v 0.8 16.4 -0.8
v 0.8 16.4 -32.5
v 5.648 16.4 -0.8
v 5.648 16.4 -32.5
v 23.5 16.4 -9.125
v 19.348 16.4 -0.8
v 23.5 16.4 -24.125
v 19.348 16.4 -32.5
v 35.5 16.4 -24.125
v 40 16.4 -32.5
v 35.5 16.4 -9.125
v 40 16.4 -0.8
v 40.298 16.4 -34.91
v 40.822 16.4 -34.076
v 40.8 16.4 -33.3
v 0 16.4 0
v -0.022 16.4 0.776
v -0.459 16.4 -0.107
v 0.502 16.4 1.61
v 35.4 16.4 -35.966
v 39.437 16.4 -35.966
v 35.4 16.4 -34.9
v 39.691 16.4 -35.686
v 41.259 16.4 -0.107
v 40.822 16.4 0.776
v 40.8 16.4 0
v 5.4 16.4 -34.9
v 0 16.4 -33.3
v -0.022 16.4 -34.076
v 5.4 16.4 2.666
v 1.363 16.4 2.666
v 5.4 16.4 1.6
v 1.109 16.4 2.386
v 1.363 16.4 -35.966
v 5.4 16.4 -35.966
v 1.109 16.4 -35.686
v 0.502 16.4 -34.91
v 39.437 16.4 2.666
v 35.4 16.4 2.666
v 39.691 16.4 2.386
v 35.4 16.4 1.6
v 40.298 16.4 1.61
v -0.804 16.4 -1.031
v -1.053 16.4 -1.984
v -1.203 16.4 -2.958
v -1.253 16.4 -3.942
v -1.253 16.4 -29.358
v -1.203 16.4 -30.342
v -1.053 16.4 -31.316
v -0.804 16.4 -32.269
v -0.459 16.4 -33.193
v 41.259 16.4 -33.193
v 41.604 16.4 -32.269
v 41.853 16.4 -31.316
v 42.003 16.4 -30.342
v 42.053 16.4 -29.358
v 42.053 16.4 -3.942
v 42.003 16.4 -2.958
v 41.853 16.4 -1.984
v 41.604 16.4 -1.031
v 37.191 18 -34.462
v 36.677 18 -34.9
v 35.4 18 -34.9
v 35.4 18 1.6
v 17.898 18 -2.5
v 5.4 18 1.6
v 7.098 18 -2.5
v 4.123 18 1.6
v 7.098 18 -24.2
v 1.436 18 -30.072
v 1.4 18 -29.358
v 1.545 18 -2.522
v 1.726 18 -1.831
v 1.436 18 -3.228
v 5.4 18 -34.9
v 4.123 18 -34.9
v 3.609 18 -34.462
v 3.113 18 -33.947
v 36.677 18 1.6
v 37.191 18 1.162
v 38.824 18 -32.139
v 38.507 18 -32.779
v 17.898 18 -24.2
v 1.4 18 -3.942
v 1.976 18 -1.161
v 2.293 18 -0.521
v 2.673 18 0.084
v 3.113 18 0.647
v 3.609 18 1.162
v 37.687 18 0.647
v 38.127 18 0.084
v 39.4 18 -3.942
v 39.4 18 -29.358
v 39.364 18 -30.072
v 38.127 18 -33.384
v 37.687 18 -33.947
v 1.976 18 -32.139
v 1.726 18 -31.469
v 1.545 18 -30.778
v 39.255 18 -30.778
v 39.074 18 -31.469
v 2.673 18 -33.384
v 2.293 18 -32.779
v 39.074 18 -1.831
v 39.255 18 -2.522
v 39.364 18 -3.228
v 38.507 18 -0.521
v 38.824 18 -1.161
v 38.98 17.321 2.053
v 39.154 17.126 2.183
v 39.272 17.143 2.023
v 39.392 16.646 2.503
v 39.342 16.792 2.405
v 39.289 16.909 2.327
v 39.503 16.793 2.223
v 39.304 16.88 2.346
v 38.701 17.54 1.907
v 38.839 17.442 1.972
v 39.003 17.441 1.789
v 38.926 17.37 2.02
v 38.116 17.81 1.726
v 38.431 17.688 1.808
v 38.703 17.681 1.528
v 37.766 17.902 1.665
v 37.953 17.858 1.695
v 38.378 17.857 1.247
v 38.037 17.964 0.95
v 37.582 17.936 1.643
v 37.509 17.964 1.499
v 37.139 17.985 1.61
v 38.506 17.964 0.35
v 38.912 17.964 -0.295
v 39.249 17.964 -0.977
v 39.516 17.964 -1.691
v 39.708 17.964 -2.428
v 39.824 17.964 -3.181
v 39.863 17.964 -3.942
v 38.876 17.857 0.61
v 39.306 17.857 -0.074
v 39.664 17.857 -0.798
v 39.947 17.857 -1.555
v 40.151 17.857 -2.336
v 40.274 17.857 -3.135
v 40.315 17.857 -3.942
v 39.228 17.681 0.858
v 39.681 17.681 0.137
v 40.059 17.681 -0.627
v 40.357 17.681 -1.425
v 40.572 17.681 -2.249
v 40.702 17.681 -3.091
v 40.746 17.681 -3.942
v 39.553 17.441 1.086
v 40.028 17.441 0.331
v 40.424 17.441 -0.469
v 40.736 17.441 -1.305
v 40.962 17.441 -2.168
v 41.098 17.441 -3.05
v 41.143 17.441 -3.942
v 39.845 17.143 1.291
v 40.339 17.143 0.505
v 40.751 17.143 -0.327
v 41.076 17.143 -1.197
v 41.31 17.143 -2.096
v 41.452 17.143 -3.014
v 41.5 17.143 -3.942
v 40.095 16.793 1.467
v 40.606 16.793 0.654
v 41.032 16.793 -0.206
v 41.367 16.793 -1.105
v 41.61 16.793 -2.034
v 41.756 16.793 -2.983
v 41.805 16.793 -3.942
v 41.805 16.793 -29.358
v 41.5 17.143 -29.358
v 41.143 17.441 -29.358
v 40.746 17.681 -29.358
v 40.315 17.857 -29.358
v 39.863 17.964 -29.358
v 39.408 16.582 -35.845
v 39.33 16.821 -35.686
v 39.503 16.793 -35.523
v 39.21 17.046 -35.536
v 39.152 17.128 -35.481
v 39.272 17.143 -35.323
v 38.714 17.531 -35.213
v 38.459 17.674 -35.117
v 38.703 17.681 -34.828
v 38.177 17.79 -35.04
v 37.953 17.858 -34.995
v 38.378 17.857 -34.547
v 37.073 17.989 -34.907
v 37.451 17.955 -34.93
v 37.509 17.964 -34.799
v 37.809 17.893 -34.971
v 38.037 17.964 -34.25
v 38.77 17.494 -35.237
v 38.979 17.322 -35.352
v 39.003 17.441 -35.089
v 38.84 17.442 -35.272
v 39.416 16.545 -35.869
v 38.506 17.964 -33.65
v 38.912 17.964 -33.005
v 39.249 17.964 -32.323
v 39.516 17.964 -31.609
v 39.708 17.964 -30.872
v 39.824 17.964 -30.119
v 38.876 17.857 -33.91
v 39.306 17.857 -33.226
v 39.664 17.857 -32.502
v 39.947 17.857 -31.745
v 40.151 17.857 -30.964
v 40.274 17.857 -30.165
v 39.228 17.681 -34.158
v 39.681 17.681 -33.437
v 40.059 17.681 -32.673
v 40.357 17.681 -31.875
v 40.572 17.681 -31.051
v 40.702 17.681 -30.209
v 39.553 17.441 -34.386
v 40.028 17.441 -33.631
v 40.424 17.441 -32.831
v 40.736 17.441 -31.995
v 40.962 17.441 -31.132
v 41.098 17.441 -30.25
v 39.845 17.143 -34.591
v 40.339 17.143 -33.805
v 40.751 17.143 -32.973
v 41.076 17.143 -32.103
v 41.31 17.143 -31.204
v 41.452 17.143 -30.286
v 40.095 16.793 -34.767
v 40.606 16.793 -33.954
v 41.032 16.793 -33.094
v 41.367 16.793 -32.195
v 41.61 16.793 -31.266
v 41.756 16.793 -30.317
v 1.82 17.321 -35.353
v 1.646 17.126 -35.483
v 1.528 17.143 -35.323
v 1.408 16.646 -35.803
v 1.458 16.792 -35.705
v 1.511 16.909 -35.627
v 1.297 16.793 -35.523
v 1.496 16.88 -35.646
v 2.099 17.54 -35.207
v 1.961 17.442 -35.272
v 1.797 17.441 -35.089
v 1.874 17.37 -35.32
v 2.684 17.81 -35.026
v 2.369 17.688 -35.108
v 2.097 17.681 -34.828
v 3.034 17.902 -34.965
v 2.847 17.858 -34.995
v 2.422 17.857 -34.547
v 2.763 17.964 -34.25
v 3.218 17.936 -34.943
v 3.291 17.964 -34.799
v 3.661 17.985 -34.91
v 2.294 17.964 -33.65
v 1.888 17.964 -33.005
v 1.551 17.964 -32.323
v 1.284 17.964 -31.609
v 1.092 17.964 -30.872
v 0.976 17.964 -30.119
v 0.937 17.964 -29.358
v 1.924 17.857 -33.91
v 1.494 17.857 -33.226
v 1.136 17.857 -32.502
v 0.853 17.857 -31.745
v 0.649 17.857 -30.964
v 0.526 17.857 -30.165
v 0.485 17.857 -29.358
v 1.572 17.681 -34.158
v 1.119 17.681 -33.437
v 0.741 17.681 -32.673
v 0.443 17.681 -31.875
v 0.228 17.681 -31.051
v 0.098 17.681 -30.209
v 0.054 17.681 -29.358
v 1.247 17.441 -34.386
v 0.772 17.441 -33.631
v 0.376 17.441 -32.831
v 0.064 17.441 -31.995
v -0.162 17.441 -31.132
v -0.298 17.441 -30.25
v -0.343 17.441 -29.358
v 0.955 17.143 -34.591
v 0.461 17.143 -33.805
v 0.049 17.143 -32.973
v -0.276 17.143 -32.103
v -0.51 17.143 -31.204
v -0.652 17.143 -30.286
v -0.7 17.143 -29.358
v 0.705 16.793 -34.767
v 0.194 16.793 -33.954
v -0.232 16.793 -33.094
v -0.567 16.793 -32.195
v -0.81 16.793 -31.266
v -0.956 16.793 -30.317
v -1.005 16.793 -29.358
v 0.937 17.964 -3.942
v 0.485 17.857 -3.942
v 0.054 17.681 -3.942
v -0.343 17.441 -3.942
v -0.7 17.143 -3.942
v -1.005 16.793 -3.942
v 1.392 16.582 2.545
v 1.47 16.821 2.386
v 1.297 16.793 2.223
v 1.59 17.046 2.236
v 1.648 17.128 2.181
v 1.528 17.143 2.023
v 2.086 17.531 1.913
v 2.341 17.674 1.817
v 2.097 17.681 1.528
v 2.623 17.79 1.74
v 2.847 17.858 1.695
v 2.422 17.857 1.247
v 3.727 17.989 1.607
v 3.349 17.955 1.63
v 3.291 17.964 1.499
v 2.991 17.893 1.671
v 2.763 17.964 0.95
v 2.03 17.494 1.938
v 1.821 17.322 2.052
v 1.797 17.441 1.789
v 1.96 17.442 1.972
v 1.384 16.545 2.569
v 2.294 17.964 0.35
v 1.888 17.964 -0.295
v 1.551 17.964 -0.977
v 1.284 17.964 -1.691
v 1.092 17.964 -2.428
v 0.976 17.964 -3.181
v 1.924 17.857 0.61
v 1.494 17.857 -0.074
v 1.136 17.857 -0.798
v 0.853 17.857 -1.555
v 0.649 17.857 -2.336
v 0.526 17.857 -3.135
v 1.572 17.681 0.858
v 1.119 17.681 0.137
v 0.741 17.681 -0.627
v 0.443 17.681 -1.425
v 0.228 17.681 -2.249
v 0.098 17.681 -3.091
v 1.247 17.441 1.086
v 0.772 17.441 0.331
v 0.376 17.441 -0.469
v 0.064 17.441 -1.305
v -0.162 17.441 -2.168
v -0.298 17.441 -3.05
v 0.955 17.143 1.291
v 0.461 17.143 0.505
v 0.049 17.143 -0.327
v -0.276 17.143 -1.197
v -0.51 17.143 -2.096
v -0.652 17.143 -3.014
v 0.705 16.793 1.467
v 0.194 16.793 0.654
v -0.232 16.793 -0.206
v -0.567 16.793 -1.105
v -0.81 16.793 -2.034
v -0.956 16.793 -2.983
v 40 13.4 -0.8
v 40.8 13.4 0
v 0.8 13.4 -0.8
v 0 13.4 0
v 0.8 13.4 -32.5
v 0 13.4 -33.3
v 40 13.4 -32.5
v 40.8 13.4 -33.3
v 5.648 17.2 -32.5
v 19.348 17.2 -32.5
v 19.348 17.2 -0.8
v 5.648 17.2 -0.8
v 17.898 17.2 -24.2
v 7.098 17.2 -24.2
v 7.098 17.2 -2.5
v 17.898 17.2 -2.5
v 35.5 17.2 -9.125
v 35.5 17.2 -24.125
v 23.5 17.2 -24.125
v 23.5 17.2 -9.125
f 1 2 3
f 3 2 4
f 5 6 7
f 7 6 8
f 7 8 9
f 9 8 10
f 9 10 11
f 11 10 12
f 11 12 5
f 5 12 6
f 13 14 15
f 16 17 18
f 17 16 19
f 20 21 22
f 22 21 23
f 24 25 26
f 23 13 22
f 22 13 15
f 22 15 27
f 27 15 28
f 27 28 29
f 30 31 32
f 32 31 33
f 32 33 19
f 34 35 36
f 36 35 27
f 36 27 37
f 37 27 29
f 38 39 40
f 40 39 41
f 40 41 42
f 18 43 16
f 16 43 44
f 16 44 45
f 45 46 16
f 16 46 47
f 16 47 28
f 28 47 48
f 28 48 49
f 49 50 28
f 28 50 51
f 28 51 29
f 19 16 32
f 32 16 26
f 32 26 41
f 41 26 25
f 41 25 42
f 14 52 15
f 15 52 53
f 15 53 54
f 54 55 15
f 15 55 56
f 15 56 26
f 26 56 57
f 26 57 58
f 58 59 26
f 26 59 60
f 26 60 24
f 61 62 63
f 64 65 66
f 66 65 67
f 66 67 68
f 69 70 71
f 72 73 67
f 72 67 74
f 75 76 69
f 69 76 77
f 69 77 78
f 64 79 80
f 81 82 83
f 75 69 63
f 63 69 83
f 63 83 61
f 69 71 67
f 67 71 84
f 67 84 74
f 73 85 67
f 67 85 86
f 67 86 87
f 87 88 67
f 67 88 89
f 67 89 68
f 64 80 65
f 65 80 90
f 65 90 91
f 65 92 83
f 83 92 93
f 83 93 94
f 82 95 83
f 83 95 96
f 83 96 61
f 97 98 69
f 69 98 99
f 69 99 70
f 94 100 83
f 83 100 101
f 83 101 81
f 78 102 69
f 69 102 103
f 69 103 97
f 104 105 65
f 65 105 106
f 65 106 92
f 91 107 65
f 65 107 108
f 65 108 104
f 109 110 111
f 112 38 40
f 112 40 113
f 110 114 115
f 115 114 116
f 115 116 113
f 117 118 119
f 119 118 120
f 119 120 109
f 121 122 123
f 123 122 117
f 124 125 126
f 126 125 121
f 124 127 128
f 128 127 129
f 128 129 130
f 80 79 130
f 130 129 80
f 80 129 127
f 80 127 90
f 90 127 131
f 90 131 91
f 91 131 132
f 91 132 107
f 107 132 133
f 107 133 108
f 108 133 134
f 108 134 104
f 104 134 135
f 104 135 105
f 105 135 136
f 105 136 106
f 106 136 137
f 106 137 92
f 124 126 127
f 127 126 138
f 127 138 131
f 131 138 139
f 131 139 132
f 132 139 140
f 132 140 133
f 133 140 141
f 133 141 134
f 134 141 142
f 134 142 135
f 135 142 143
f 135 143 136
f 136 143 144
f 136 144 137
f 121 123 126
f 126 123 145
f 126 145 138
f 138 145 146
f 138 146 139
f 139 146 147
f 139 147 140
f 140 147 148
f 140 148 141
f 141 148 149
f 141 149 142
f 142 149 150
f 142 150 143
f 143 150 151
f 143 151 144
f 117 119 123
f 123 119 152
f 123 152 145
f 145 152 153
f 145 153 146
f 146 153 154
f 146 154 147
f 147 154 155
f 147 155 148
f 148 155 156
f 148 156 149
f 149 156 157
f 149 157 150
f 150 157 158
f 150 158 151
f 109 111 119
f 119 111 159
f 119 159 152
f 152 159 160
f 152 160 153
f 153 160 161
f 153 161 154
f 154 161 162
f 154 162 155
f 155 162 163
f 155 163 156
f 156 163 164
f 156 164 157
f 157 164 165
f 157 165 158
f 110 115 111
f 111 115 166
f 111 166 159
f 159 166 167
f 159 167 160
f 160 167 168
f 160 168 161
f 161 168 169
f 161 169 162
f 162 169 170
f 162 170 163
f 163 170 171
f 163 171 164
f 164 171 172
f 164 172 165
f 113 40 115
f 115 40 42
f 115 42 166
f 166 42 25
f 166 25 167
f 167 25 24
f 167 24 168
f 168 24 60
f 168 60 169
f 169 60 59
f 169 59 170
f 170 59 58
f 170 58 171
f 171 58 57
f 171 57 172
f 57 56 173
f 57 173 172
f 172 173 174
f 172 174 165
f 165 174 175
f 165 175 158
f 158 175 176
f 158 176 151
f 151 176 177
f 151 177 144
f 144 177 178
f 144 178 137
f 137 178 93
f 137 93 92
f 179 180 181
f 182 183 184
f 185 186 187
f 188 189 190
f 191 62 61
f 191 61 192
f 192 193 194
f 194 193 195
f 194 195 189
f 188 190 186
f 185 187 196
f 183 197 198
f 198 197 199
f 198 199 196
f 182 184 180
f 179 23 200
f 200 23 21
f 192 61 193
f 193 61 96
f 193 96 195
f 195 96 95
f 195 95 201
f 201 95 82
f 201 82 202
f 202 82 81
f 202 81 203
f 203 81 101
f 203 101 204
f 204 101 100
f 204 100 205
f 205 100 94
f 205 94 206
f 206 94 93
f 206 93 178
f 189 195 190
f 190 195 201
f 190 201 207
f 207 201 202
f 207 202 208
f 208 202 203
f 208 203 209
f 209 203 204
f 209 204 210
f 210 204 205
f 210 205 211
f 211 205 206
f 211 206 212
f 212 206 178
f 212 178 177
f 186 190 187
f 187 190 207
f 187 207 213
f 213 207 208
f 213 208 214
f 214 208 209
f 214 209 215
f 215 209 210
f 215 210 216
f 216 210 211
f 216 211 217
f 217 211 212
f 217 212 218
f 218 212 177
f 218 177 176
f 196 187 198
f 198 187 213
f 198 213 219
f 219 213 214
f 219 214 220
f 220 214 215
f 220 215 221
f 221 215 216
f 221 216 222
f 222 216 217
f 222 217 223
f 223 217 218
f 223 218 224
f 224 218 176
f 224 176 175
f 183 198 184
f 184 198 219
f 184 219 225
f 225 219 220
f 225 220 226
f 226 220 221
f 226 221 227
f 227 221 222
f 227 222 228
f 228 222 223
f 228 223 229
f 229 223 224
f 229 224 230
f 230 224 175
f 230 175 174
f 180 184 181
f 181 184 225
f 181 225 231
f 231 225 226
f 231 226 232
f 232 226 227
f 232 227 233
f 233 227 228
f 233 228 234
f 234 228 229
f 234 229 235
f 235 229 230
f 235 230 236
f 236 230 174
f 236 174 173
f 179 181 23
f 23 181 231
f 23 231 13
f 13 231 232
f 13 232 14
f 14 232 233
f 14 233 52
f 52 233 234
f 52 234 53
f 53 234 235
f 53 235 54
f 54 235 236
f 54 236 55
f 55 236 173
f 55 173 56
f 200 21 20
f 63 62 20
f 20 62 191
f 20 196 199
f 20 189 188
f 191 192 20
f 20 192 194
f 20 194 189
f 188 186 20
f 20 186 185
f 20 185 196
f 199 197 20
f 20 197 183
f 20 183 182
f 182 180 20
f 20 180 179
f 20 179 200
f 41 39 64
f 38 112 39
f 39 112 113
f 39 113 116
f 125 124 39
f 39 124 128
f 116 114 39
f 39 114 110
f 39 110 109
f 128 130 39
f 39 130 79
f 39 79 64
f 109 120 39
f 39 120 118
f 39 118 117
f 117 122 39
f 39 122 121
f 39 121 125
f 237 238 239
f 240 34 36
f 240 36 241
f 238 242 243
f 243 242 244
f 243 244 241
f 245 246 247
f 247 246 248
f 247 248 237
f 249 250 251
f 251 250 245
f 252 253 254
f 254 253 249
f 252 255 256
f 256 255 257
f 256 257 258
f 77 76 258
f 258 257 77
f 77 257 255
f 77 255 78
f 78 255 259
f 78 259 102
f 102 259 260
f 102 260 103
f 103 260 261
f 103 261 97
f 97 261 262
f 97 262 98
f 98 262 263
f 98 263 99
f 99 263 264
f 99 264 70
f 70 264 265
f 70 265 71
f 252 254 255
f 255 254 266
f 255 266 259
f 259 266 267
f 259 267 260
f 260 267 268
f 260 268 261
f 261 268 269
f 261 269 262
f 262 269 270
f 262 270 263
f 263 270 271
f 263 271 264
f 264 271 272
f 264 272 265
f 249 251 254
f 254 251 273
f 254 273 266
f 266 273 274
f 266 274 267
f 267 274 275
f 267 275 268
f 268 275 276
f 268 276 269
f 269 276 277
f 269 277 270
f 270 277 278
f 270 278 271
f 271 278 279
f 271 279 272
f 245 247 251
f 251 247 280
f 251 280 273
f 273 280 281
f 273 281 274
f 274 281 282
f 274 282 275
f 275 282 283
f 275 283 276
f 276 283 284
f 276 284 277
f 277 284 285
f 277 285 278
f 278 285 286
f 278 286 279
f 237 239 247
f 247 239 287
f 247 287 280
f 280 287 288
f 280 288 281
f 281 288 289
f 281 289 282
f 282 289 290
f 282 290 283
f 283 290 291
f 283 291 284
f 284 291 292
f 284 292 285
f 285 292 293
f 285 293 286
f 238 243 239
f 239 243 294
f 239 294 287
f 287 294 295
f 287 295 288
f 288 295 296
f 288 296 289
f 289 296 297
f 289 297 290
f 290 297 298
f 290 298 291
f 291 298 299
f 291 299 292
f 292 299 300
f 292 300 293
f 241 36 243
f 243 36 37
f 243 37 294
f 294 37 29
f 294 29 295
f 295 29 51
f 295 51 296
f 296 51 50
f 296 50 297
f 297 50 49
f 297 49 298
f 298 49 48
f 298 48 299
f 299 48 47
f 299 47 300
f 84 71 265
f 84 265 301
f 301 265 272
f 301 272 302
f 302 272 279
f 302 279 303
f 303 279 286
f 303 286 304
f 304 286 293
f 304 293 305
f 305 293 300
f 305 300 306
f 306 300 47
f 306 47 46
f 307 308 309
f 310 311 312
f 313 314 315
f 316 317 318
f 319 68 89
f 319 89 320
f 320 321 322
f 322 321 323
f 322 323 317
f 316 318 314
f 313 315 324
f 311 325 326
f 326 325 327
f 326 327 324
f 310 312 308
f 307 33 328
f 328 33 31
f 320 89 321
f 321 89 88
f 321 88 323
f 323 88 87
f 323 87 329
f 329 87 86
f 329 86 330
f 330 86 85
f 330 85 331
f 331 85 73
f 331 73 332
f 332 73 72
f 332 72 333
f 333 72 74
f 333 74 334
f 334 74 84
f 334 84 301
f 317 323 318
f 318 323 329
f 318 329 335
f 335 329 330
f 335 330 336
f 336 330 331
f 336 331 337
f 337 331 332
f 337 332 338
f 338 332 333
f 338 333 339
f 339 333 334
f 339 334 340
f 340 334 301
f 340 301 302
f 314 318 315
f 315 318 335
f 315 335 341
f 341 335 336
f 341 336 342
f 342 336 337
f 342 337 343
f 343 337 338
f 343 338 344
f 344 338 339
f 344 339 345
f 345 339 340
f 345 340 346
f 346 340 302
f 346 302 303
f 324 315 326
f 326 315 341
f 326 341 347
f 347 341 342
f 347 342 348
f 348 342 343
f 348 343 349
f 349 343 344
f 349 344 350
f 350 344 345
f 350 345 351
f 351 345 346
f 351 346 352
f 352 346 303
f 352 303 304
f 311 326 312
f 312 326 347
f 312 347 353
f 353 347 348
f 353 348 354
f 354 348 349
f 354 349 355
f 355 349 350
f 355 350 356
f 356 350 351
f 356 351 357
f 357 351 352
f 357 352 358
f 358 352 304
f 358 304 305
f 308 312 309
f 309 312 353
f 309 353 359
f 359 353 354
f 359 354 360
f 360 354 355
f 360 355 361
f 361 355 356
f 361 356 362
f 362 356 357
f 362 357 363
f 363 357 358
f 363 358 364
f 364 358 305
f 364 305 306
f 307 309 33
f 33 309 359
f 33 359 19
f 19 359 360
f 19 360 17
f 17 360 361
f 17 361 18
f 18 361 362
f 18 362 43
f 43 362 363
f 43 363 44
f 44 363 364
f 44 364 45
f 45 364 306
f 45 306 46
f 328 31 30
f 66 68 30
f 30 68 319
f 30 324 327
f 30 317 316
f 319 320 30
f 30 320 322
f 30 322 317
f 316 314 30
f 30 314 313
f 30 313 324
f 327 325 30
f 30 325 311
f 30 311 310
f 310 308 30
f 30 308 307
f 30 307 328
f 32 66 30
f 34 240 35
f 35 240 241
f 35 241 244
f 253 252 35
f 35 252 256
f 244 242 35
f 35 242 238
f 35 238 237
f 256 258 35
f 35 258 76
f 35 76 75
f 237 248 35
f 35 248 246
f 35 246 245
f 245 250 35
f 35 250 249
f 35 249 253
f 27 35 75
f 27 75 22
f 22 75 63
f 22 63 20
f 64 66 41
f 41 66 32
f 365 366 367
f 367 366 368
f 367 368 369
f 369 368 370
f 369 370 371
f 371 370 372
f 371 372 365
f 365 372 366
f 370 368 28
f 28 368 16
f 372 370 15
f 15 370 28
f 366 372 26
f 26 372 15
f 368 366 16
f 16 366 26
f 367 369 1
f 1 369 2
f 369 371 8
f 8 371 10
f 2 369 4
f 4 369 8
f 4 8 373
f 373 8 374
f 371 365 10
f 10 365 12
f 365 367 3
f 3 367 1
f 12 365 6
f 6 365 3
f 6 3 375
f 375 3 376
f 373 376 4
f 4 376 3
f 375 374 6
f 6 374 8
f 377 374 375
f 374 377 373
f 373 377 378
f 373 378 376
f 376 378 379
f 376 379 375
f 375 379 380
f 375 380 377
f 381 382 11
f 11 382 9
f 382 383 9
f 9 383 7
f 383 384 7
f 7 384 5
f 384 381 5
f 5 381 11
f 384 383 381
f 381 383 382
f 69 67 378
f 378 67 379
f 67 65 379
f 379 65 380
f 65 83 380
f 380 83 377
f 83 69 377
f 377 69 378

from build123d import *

# Parameters (mm, degrees)
SKETCH_1_W          = 40.8
SKETCH_1_H          = 33.3
EXTRUDE_3_DEPTH     = 16.4
SKETCH_2_W          = 40.8
SKETCH_2_H          = 33.3
EXTRUDE_4_DEPTH     = 1.6
SKETCH_4_W          = 17.099999999999994
SKETCH_4_H          = 13.8
CUT_EXTRUDE_1_DEPTH = 0.8
SKETCH_5_W          = 4.100000000000001
SKETCH_5_H          = 6.399999999999999
CUT_EXTRUDE_2_DEPTH = 0.8
EXTRUDE_5_DEPTH     = 3.5
EXTRUDE_5_2_DEPTH   = 3.5
EXTRUDE_5_3_DEPTH   = 3.5
SKETCH_6_W          = 3.000000000000007
SKETCH_6_H          = 3.0000000000000036
EXTRUDE_5_4_DEPTH   = 3.5
SKETCH_7_W          = 3.000000000000007
SKETCH_7_H          = 33.3
EXTRUDE_7_DEPTH     = 1.6
SKETCH_8_R          = 2.4500000000000015
SKETCH_8_W          = 10.999999999999998
SKETCH_8_H          = 4.8999999999999995
CUT_EXTRUDE_3_DEPTH = 1.6
SKETCH_10_W         = 44
SKETCH_10_H         = 36.49999999999999
EXTRUDE_8_DEPTH     = 1.6
SKETCH_11_W         = 2.0999999999999996
SKETCH_11_H         = 6.020000000000001
EXTRUDE_9_DEPTH     = 44
EXTRUDE_12_DEPTH    = 7
SKETCH_15_W         = 2.1000000000000085
SKETCH_15_H         = 6.019999999999997
EXTRUDE_13_DEPTH    = 37
EXTRUDE_14_DEPTH    = 7
EXTRUDE_15_DEPTH    = 7
FILLET_1_R          = 10
FILLET_2_R          = 3.2
FILLET_3_R          = 3
SKETCH_17_W         = 56.29646115275759
SKETCH_17_H         = 50.293284015615065
CUT_EXTRUDE_4_DEPTH = 16.4
EXTRUDE_16_DEPTH    = 3
CUT_EXTRUDE_6_DEPTH = 0.8
CUT_EXTRUDE_7_DEPTH = 0.8
CUT_EXTRUDE_8_DEPTH = 0.8


with BuildPart() as part:
    # Эскиз1 → Бобышка-Вытянуть3 (new body)
    with BuildSketch(Plane(origin=(0, 0, 0), x_dir=(1, 0, 0), z_dir=(0, 1, 0))):
        Polygon((42.399999999999984, 34.89999999999999), (42.39999999999999, -1.600000000000004), (-1.6000000000000032, -1.600000000000004), (-1.6000000000000076, 34.89999999999999), align=None)
        with Locations((20.4, 16.65)):
            Rectangle(SKETCH_1_W, SKETCH_1_H, mode=Mode.SUBTRACT)
    extrude(amount=EXTRUDE_3_DEPTH)

    # Эскиз2 → Бобышка-Вытянуть4 (add)
    with BuildSketch(Plane(origin=(0, 0, 0), x_dir=(-1, 0, 0), z_dir=(0, -1, 0))):
        with Locations((-20.4, 16.65)):
            Rectangle(SKETCH_2_W, SKETCH_2_H)
    extrude(amount=-EXTRUDE_4_DEPTH)

    # Эскиз4 → Вырез-Вытянуть1 (cut)
    with BuildSketch(Plane(origin=(0, 1.6, 0), x_dir=(1, 0, 0), z_dir=(0, 1, 0))):
        with Locations((20.4, 16.65)):
            Rectangle(SKETCH_4_W, SKETCH_4_H)
    extrude(amount=-CUT_EXTRUDE_1_DEPTH, mode=Mode.SUBTRACT)

    # Эскиз5 → Вырез-Вытянуть2 (cut)
    with BuildSketch(Plane(origin=(0, 0.8, 0), x_dir=(1, 0, 0), z_dir=(0, 1, 0))):
        with Locations((20.4, 16.65)):
            Rectangle(SKETCH_5_W, SKETCH_5_H)
    extrude(amount=-CUT_EXTRUDE_2_DEPTH, mode=Mode.SUBTRACT)

    # Эскиз8 → Вырез-Вытянуть3 (cut)
    with BuildSketch(Plane.ZY.offset(1.6000000000000034)):
        with Locations((-22.149999999999995, 8.95)):
            Circle(SKETCH_8_R)
        with Locations((-11.149999999999993, 8.95)):
            Circle(SKETCH_8_R)
        with Locations((-16.64999999999999, 8.950000000000001)):
            Rectangle(SKETCH_8_W, SKETCH_8_H)
    extrude(amount=-CUT_EXTRUDE_3_DEPTH, mode=Mode.SUBTRACT)

    # Эскиз10 → Бобышка-Вытянуть8 (add)
    with BuildSketch(Plane(origin=(0, 16.4, 0), x_dir=(1, 0, 0), z_dir=(0, 1, 0))):
        with Locations((20.39999999999999, 16.649999999999995)):
            Rectangle(SKETCH_10_W, SKETCH_10_H)
    extrude(amount=EXTRUDE_8_DEPTH)



with BuildPart() as body_2:
    # Эскиз6 → Бобышка-Вытянуть5 (new body)
    with BuildSketch(Plane(origin=(0, 1.6, 0), x_dir=(1, 0, 0), z_dir=(0, 1, 0))):
        Polygon((0, 33.3), (3, 33.3), (3.0000000000000004, 30.299999999999997), (3.7e-16, 30.299999999999997), align=None)
    extrude(amount=EXTRUDE_5_DEPTH)


with BuildPart() as body_3:
    # Эскиз6 → Extrude 5 2 (new body)
    with BuildSketch(Plane(origin=(0, 1.6, 0), x_dir=(1, 0, 0), z_dir=(0, 1, 0))):
        Polygon((0, 0), (3, 0), (2.9999999999999996, 3), (-8.7e-16, 3), align=None)
    extrude(amount=EXTRUDE_5_2_DEPTH)


with BuildPart() as body_4:
    # Эскиз6 → Extrude 5 3 (new body)
    with BuildSketch(Plane(origin=(0, 1.6, 0), x_dir=(1, 0, 0), z_dir=(0, 1, 0))):
        Polygon((40.8, 0), (37.79999999999999, -3.7e-16), (37.79999999999999, 2.9999999999999996), (40.8, 3), align=None)
    extrude(amount=EXTRUDE_5_3_DEPTH)


with BuildPart() as body_5:
    # Эскиз6 → Extrude 5 4 (new body)
    with BuildSketch(Plane(origin=(0, 1.6, 0), x_dir=(1, 0, 0), z_dir=(0, 1, 0))):
        with Locations((39.3, 31.799999999999997)):
            Rectangle(SKETCH_6_W, SKETCH_6_H)
    extrude(amount=EXTRUDE_5_4_DEPTH)


with BuildPart() as body_6:
    # Эскиз7 → Бобышка-Вытянуть7 (new body)
    with BuildSketch(Plane(origin=(0, 5.1000000000000005, 0), x_dir=(1, 0, 0), z_dir=(0, 1, 0))):
        with Locations((39.3, 16.65)):
            Rectangle(SKETCH_7_W, SKETCH_7_H)
    extrude(amount=EXTRUDE_7_DEPTH)


with BuildPart() as body_6_1:
    # Move Body 1: read off the stored shape, not the designer's step
    # Move Body 1: moved
    add(body_6.part.moved(Location((0, 5.27, 0))))


with BuildPart() as body_7:
    # Эскиз11 → Бобышка-Вытянуть9 (new body)
    with BuildSketch(Plane(origin=(42.39999999999999, 0, -8.06e-15), x_dir=(-1.9e-16, 0, -1), z_dir=(1, 0, -1.9e-16))):
        with Locations((-5.008433364905541, 9)):
            Rectangle(SKETCH_11_W, SKETCH_11_H)
    extrude(amount=-EXTRUDE_9_DEPTH)


with BuildPart() as part_1:
    add(part.part)

    add(body_7.part)  # Бобышка-Вытянуть12 merges body 7
    # Эскиз12 → Бобышка-Вытянуть12 (add)
    with BuildSketch(Plane(origin=(42.39999999999999, 0, -8.06e-15), x_dir=(-1.9e-16, 0, -1), z_dir=(1, 0, -1.9e-16))):
        Polygon((-1.6000000000000123, 0), (-6.0584333649055395, 6.675491735766058), (-6.05843336490554, 11.309768082903124), (-1.6000000000000123, 18), align=None)
        Polygon((34.899999999999984, 18.00000000000004), (34.899999999999984, 3.25e-15), (39.35843336490551, 6.675491735766043), (39.35843336490551, 11.309768082903172), align=None)
    extrude(amount=-EXTRUDE_12_DEPTH)

    # Эскиз15 → Бобышка-Вытянуть13 (add)
    with BuildSketch(Plane.ZY.offset(-35.39999999999997)):
        with Locations((-38.30843336490551, 8.994768082903173)):
            Rectangle(SKETCH_15_W, SKETCH_15_H)
    extrude(amount=EXTRUDE_13_DEPTH)

    # Эскиз16 → Бобышка-Вытянуть14 (add)
    with BuildSketch(Plane.ZY.offset(1.6000000000000034)):
        Polygon((-34.89999999999999, 18), (-39.358433364905515, 11.309768082903172), (-39.358433364905515, 6.6797680829031725), (-34.89999999999999, 0), align=None)
    extrude(amount=-EXTRUDE_14_DEPTH)

    # Эскиз14 → Бобышка-Вытянуть15 (add)
    with BuildSketch(Plane.ZY.offset(1.6000000000000034)):
        Polygon((1.600000000000004, 18), (6.058433364905541, 11.309768082903124), (6.05843336490554, 6.675491735766058), (1.600000000000004, 0), align=None)
    extrude(amount=-EXTRUDE_15_DEPTH)

    # Скругление1
    # the kernel refuses this fillet: 10 mm, written as the material it takes off along each edge
    with BuildSketch(Plane(origin=(-1.6000000000000074, 37.010000000000005, 6.05843336490554), x_dir=(4.2e-16, 0, -1), z_dir=(0, -1, 0))) as fillet_1_piece_1:
        with BuildLine():
            CenterArc((FILLET_1_R, FILLET_1_R), FILLET_1_R, 180, 89.99999999999994)
            Line((6.88e-15, FILLET_1_R), (0, 0))
            Line((0, 0), (FILLET_1_R, 0))
        make_face()
    extrude(amount=56.02000000000001, mode=Mode.SUBTRACT)
    with BuildSketch(Plane(origin=(42.39999999999999, 37.01, 6.058433364905532), x_dir=(0, 0, -1), z_dir=(0, -1, 0))) as fillet_1_piece_2:
        with BuildLine():
            CenterArc((FILLET_1_R, -FILLET_1_R), FILLET_1_R, 89.99999999999999, 90.00000000000001)
            Line((-5.33e-15, -FILLET_1_R), (0, 0))
            Line((0, 0), (FILLET_1_R, 0))
        make_face()
    extrude(amount=56.019999999999996, mode=Mode.SUBTRACT)
    with BuildSketch(Plane(origin=(42.399999999999984, -18.324508264233955, -39.358433364905515), x_dir=(0, 0, 1), z_dir=(0, 1, 0))) as fillet_1_piece_3:
        with BuildLine():
            CenterArc((FILLET_1_R, -FILLET_1_R), FILLET_1_R, 90.00000000000003, 89.99999999999997)
            Line((7.11e-15, -FILLET_1_R), (0, 0))
            Line((0, 0), (FILLET_1_R, 0))
        make_face()
    extrude(amount=54.634276347137124, mode=Mode.SUBTRACT)
    with BuildSketch(Plane(origin=(-1.6000000000000298, -19.015231917096827, -39.358433364905515), x_dir=(1, 0, 7.1e-16), z_dir=(0, 1, 0))) as fillet_1_piece_4:
        with BuildLine():
            CenterArc((FILLET_1_R, -FILLET_1_R), FILLET_1_R, 90.00000000000006, 89.99999999999994)
            Line((8.88e-15, -FILLET_1_R), (0, 0))
            Line((0, 0), (FILLET_1_R, 0))
        make_face()
    extrude(amount=56.02, mode=Mode.SUBTRACT)

    # Скругление2
    # the kernel refuses this fillet: 3.2 mm, written as the material it takes off along each edge
    with BuildSketch(Plane(origin=(35.39999999999997, 5.984768082903174, -37.25843336490551), x_dir=(0, 4.2e-16, -1), z_dir=(-1, 0, 0))) as fillet_2_piece_1:
        with BuildLine():
            CenterArc((3.200000000000004, -3.0049958402633457), FILLET_2_R, 110.10550978791592, 69.89449021208412)
            Line((1.27e-15, -3.004995840263347), (0, 0))
            Line((0, 0), (2.1000000000000085, 0))
        make_face()
    extrude(amount=29.99999999999998, mode=Mode.SUBTRACT)
    with BuildSketch(Plane(origin=(35.39999999999997, 5.984768082903174, -37.25843336490551), x_dir=(0, 4.2e-16, -1), z_dir=(-1, 0, 0))) as fillet_2_piece_2_section:
        with BuildLine():
            CenterArc((3.200000000000004, -3.0049958402633457), FILLET_2_R, 110.10550978791592, 69.89449021208412)
            Line((1.27e-15, -3.004995840263347), (0, 0))
            Line((0, 0), (2.1000000000000085, 0))
        make_face()
    fillet_2_piece_2 = extrude(amount=37.51248960065835, mode=Mode.PRIVATE)
    fillet_2_piece_2 = split(fillet_2_piece_2, bisect_by=Plane(origin=(35.39999999999997, 5.229293666046891, -38.39030940389469), z_dir=(0, -0.5551530875809806, -0.8317481886660796)), keep=Keep.TOP, mode=Mode.PRIVATE)
    add(fillet_2_piece_2, mode=Mode.SUBTRACT)
    with BuildSketch(Plane(origin=(35.39999999999997, 12.004768082903173, -37.25843336490551), x_dir=(0, -8.5e-16, -1), z_dir=(-1, 0, 0))) as fillet_2_piece_3:
        with BuildLine():
            CenterArc((3.2000000000000055, 3.004995840263345), FILLET_2_R, 179.99999999999994, 69.89449021208412)
            Line((2.54e-15, 3.004995840263348), (0, 0))
            Line((0, 0), (2.1000000000000085, 0))
        make_face()
    extrude(amount=29.99999999999998, mode=Mode.SUBTRACT)
    with BuildSketch(Plane(origin=(42.91248960065834, 12.004768082903173, -37.25843336490551), x_dir=(0, -8.5e-16, -1), z_dir=(-1, 0, 0))) as fillet_2_piece_4_section:
        with BuildLine():
            CenterArc((3.2000000000000055, 3.004995840263345), FILLET_2_R, 179.99999999999994, 69.89449021208412)
            Line((2.54e-15, 3.004995840263348), (0, 0))
            Line((0, 0), (2.1000000000000085, 0))
        make_face()
    fillet_2_piece_4 = extrude(amount=45.02497920131672, mode=Mode.PRIVATE)
    fillet_2_piece_4 = split(fillet_2_piece_4, bisect_by=Plane(origin=(42.91248960065834, 12.760123030249147, -38.39190321044578), z_dir=(0, 0.5545519689982268, -0.8321490934202775)), keep=Keep.TOP, mode=Mode.PRIVATE)
    add(fillet_2_piece_4, mode=Mode.SUBTRACT)
    with BuildSketch(Plane(origin=(35.39999999999999, 5.99, 3.958433364905534), x_dir=(1.9e-16, 0, 1), z_dir=(-1, 0, 1.9e-16))) as fillet_2_piece_5:
        with BuildLine():
            CenterArc((3.2000000000000006, 3.0049958402633443), FILLET_2_R, 180, 69.89449021208401)
            Line((4.4e-16, 3.0049958402633443), (0, 0))
            Line((0, 0), (2.1, 0))
        make_face()
    extrude(amount=29.999999999999993, mode=Mode.SUBTRACT)
    with BuildSketch(Plane(origin=(42.91248960065835, 12.01, 3.9584333649055328), x_dir=(1.9e-16, 8.5e-16, 1), z_dir=(-1, 0, 1.9e-16))) as fillet_2_piece_6_section:
        with BuildLine():
            CenterArc((3.1999999999999984, -3.004995840263345), FILLET_2_R, 110.10550978791599, 69.89449021208395)
            Line((-2.1e-15, -3.0049958402633425), (0, 0))
            Line((0, 0), (2.0999999999999996, 0))
        make_face()
    fillet_2_piece_6 = extrude(amount=45.024979201316704, mode=Mode.PRIVATE)
    fillet_2_piece_6 = split(fillet_2_piece_6, bisect_by=Plane(origin=(42.91248960065835, 12.763745986939767, 5.089488838090781), z_dir=(0, 0.5545519689982267, 0.8321490934202775)), keep=Keep.TOP, mode=Mode.PRIVATE)
    add(fillet_2_piece_6, mode=Mode.SUBTRACT)
    with BuildSketch(Plane(origin=(35.39999999999999, 12.01, 3.958433364905534), x_dir=(1.9e-16, 8.5e-16, 1), z_dir=(-1, 0, 1.9e-16))) as fillet_2_piece_7:
        with BuildLine():
            CenterArc((3.199999999999998, -3.004995840263345), FILLET_2_R, 110.10550978791599, 69.89449021208395)
            Line((-2.1e-15, -3.0049958402633425), (0, 0))
            Line((0, 0), (2.099999999999999, 0))
        make_face()
    extrude(amount=29.999999999999993, mode=Mode.SUBTRACT)

    # Скругление3
    fillet_3_edges = [part_1.edges().sort_by_distance(p)[0] for p in [
        (41.97186604889837, 17.999999999999996, -32.25314929949211),
        (41.97186604889837, 0, -32.25314929949211),
        (41.97186604889836, 0, -1.0468507005078767),
        (41.97186604889836, 18, -1.0468507005078767),
        (42.39999999999999, 18, -16.65),
        (42.399999999999984, 0, -16.65),
        (-1.6000000000000076, 18, -16.65),
        (-1.6000000000000054, 0, -16.65),
        (-1.1718660488983677, 0, -32.25314929949211),
        (-1.1718660488983677, 17.999999999999996, -32.25314929949211),
        (-1.171866048898364, 0, -1.0468507005078784),
        (-1.171866048898364, 18, -1.0468507005078784),
    ]]
    fillet(fillet_3_edges, radius=FILLET_3_R)


with BuildPart() as cut_extrude_4_tool:
    # Эскиз17 → Вырез-Вытянуть4 (new body)
    with BuildSketch(Plane.XZ):
        with Locations((20.4, -16.650000000000002)):
            Rectangle(SKETCH_17_W, SKETCH_17_H)
    extrude(amount=-CUT_EXTRUDE_4_DEPTH)


with BuildPart() as part_2:
    add(part_1.part)

    # Вырез-Вытянуть4: cut by cut_extrude_4_tool
    add(cut_extrude_4_tool.part, mode=Mode.SUBTRACT)

    # Эскиз18 → Бобышка-Вытянуть16 (add)
    with BuildSketch(Plane(origin=(0, 16.4, 0), x_dir=(-1, 0, 0), z_dir=(0, -1, 0))):
        Polygon((-40.79999999999996, 9.16e-15), (3.296e-14, 1.166e-14), (3.123e-14, 33.30000000000001), (-40.79999999999996, 33.30000000000001), align=None)
        Polygon((-39.999999999999964, 0.8000000000000085), (-0.7999999999999708, 0.8000000000000107), (-0.7999999999999735, 32.500000000000014), (-39.999999999999964, 32.500000000000014), align=None, mode=Mode.SUBTRACT)
    extrude(amount=EXTRUDE_16_DEPTH)

    # Эскиз21 → Вырез-Вытянуть6 (cut)
    with BuildSketch(Plane.XZ.offset(-16.4)):
        Polygon((5.64771181596363, -0.8000000000000085), (19.34771181596362, -0.800000000000006), (19.34771181596363, -32.500000000000014), (5.647711815963632, -32.500000000000014), align=None)
    extrude(amount=-CUT_EXTRUDE_6_DEPTH, mode=Mode.SUBTRACT)

    # Эскиз22 → Вырез-Вытянуть7 (cut)
    with BuildSketch(Plane.XZ.offset(-16.4)):
        Polygon((23.499999999999968, -9.125000000000016), (35.49999999999997, -9.125000000000016), (35.49999999999997, -24.125000000000014), (23.499999999999968, -24.125000000000018), align=None)
    extrude(amount=-CUT_EXTRUDE_7_DEPTH, mode=Mode.SUBTRACT)

    # Эскиз23 → Вырез-Вытянуть8 (cut)
    with BuildSketch(Plane.XZ.offset(-17.199999999999996)):
        Polygon((7.0977118159636365, -2.5000000000000115), (17.89771181596363, -2.5000000000000093), (17.897711815963632, -24.200000000000014), (7.097711815963637, -24.200000000000014), align=None)
    extrude(amount=-CUT_EXTRUDE_8_DEPTH, mode=Mode.SUBTRACT)


with BuildPart() as body_2_1:
    add(body_2.part)

    # Вырез-Вытянуть4: cut by cut_extrude_4_tool
    add(cut_extrude_4_tool.part, mode=Mode.SUBTRACT)


with BuildPart() as body_3_1:
    add(body_3.part)

    # Вырез-Вытянуть4: cut by cut_extrude_4_tool
    add(cut_extrude_4_tool.part, mode=Mode.SUBTRACT)


with BuildPart() as body_4_1:
    add(body_4.part)

    # Вырез-Вытянуть4: cut by cut_extrude_4_tool
    add(cut_extrude_4_tool.part, mode=Mode.SUBTRACT)


with BuildPart() as body_5_1:
    add(body_5.part)

    # Вырез-Вытянуть4: cut by cut_extrude_4_tool
    add(cut_extrude_4_tool.part, mode=Mode.SUBTRACT)


with BuildPart() as body_6_2:
    add(body_6_1.part)

    # Вырез-Вытянуть4: cut by cut_extrude_4_tool
    add(cut_extrude_4_tool.part, mode=Mode.SUBTRACT)


solid = part_2.part
